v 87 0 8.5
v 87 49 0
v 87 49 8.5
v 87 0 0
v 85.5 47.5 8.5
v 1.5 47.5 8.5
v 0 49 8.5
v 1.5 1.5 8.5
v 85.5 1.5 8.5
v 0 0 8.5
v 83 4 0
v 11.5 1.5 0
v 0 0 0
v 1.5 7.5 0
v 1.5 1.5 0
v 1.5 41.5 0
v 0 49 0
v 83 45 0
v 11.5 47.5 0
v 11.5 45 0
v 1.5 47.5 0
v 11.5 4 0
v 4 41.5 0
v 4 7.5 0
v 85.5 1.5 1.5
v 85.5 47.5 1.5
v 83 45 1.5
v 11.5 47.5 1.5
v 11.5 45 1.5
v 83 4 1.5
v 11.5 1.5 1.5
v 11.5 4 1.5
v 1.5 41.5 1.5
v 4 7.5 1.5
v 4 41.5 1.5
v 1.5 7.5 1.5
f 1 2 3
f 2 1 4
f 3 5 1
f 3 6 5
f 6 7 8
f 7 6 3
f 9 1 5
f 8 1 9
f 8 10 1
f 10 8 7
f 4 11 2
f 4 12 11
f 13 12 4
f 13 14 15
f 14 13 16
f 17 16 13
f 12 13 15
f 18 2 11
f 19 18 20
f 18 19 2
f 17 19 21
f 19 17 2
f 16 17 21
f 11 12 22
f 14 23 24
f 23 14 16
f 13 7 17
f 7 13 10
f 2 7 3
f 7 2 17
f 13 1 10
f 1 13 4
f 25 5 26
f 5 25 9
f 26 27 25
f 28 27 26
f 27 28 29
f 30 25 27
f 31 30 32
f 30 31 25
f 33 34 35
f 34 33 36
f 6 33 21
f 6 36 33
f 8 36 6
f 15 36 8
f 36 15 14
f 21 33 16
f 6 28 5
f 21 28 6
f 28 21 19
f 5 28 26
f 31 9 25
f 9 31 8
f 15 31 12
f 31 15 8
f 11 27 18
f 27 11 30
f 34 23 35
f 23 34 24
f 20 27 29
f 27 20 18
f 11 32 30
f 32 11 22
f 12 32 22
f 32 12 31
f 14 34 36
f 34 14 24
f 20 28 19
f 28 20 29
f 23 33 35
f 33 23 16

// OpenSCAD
// 24V power supply connector insulator.

ww=87;         // width of connector PCB.
dd=49;         // distance from top of top board to bottom of bottom board.
depth=7;       // how much of PCB to cover.
wall=1.5;      // thickness of wall.
overhang=4;    // overhang protecting more of PCB.
wire_ww=10;    // wire cutout
wire_dd=6;

module main() {
  difference() {
    cube([ww,dd,depth+wall]);
    translate([wall,wall,wall]) cube([ww-2*wall,dd-2*wall,depth]);
    translate([overhang,overhang,0]) cube([ww-overhang*2,dd-overhang*2,depth+wall]);
    
    // cutouts for power enable wires.
    #translate([wall,wall,0]) cube([wire_ww,wire_dd,depth+wall]);
    #translate([wall,dd-wall-wire_dd,0]) cube([wire_ww,wire_dd,depth+wall]);
  }
}

main();
